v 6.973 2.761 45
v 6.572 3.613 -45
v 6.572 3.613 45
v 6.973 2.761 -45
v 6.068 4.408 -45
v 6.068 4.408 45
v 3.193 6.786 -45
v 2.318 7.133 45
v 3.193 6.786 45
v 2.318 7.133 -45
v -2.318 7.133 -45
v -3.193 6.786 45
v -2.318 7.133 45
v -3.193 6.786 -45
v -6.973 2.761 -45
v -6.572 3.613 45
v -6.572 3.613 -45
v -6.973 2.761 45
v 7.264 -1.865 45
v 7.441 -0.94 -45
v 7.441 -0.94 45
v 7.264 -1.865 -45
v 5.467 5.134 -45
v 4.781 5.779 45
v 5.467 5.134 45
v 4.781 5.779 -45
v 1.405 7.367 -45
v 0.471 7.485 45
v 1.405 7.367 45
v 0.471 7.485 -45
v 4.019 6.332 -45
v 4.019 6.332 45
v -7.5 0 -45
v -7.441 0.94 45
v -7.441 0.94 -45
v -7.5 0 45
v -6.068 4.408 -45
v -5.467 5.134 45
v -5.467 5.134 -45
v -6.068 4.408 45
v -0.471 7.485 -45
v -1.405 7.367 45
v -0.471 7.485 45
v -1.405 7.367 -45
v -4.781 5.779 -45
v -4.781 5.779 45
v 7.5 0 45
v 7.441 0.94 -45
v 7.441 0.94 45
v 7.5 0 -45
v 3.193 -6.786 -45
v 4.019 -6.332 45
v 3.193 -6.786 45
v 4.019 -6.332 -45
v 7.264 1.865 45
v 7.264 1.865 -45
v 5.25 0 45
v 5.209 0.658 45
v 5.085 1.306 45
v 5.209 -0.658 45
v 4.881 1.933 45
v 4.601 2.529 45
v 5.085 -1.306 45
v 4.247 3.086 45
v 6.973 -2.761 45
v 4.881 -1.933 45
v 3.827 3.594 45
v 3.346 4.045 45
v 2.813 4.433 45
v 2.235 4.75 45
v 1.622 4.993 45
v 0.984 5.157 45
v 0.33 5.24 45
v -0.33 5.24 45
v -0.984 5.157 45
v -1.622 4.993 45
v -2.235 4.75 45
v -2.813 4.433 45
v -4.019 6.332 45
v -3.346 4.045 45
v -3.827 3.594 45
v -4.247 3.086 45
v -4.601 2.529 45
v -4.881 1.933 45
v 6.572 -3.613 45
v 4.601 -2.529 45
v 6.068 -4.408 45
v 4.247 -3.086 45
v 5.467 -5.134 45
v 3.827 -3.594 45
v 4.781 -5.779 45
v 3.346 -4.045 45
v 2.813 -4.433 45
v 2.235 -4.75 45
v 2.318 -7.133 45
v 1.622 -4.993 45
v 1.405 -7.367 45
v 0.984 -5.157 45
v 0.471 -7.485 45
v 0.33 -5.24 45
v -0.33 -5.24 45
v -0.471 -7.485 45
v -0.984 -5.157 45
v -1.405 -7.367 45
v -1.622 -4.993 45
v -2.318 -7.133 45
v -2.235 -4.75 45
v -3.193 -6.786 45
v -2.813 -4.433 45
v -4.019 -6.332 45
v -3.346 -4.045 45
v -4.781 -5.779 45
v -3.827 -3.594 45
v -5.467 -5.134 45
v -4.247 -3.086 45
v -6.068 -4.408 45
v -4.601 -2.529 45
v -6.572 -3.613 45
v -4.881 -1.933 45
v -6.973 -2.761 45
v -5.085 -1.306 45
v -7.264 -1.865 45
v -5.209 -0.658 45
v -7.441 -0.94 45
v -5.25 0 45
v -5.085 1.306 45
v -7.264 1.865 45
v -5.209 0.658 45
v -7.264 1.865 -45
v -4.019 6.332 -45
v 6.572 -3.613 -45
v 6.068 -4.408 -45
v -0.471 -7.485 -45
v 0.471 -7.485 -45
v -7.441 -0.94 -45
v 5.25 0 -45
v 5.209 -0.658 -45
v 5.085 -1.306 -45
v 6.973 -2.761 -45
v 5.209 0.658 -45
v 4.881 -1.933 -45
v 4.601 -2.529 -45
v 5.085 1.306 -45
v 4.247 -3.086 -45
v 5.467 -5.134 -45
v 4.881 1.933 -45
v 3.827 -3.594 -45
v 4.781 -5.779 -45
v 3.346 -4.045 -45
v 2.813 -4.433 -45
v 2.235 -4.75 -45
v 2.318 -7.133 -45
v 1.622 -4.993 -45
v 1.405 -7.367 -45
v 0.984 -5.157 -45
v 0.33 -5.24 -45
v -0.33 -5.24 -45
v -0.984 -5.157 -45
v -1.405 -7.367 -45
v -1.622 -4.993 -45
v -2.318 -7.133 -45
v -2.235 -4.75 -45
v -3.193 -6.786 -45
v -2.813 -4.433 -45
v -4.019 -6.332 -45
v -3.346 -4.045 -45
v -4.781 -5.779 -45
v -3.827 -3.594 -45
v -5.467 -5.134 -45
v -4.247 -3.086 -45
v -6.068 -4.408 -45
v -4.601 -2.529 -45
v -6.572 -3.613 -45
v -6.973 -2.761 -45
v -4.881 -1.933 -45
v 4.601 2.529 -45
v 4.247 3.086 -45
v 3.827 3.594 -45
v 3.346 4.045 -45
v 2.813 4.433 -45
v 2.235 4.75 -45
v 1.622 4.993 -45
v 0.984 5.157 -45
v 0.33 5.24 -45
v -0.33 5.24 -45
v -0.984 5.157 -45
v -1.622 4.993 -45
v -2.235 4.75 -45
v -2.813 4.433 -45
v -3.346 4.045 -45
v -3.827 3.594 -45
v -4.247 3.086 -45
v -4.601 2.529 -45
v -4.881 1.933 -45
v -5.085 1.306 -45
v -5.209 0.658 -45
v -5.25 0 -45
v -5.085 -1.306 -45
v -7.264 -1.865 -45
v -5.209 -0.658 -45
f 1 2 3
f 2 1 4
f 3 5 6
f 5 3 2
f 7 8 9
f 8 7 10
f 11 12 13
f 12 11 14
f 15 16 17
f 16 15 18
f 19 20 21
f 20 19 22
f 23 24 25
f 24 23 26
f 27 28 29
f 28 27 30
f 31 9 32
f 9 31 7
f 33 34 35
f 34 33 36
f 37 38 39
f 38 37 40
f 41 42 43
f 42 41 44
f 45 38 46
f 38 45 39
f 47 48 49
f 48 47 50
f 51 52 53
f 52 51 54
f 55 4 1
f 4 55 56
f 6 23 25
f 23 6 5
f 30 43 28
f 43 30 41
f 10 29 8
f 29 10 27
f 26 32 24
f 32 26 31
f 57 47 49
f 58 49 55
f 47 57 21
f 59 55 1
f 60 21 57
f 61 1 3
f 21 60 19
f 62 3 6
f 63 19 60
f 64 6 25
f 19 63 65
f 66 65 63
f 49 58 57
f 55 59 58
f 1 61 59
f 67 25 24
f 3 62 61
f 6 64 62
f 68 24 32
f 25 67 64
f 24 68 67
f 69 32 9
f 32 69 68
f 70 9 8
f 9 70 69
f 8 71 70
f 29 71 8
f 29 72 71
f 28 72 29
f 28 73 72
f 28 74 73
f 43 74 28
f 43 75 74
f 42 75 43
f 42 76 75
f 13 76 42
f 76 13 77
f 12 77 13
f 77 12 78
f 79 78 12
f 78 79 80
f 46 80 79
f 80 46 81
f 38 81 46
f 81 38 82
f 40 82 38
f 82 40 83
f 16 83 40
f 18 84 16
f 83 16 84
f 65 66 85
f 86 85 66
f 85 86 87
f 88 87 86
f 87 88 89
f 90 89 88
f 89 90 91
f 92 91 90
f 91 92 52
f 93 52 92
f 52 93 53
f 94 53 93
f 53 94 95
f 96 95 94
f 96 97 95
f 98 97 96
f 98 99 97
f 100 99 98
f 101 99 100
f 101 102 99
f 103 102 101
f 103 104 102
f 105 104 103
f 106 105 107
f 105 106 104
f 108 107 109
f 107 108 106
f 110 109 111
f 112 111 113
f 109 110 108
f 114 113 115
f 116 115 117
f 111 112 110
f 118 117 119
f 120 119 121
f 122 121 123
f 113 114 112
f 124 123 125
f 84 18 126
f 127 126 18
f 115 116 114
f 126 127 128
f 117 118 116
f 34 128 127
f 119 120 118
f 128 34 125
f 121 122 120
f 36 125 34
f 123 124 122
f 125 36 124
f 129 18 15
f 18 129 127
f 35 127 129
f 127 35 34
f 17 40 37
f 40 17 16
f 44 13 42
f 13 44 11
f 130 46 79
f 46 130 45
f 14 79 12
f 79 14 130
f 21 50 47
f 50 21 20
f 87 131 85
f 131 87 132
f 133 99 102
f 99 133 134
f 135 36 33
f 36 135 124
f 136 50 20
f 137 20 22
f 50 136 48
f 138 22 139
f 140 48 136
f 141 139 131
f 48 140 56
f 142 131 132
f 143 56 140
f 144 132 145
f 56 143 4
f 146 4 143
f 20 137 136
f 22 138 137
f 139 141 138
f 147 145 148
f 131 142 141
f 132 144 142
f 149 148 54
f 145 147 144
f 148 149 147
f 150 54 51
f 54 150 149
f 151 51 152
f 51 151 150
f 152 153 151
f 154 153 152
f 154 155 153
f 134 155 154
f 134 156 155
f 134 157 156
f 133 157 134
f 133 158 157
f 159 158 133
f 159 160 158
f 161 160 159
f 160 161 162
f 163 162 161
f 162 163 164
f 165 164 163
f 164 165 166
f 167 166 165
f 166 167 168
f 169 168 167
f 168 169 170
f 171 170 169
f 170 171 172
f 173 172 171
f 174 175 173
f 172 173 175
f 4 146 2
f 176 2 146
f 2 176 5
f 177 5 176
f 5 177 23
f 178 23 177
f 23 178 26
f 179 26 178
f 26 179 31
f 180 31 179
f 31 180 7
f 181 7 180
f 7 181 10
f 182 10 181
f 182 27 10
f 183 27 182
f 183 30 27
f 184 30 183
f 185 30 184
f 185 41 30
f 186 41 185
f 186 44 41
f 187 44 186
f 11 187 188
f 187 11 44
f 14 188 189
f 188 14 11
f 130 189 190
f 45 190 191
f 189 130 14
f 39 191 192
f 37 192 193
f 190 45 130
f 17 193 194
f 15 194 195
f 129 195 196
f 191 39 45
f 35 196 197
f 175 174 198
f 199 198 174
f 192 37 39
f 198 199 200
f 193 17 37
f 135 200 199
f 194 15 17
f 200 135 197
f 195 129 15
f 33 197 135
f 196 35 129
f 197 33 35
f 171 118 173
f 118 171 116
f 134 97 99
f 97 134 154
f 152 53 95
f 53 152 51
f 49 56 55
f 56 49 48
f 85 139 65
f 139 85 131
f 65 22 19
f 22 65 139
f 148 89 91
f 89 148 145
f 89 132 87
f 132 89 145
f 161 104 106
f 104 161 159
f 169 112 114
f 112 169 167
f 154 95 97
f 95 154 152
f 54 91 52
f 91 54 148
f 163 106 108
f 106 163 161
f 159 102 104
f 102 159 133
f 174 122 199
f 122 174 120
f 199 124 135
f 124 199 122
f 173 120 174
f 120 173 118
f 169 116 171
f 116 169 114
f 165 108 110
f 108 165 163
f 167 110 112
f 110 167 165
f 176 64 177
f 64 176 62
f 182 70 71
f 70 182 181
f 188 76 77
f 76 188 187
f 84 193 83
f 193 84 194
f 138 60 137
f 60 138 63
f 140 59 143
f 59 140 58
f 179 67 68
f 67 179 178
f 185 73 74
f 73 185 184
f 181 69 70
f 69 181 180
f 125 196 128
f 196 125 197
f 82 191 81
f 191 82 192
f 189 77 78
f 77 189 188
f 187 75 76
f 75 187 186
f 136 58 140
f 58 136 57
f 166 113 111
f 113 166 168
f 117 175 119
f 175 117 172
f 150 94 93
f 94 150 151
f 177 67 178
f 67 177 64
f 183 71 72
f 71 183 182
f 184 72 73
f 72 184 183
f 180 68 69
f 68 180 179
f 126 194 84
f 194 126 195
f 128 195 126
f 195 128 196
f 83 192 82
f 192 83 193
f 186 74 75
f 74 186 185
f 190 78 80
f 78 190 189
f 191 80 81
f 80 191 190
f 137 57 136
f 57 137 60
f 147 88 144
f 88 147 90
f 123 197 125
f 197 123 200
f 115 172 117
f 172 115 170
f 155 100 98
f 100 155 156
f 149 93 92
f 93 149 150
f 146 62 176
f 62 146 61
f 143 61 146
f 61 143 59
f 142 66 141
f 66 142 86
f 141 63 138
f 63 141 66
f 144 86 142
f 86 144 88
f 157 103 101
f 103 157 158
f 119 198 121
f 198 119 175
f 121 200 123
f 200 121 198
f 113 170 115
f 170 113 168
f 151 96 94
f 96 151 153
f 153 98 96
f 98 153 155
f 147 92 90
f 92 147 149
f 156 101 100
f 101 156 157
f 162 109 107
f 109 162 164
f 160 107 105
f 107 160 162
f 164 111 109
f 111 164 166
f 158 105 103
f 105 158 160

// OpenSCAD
$fn = 50;


difference() {
	union() {
		translate(v = [0, 0, -45.0000000000]) {
			cylinder(h = 90, r = 7.5000000000);
		}
	}
	union() {
		translate(v = [0, 0, -100.0000000000]) {
			cylinder(h = 200, r = 5.2500000000);
		}
	}
}
